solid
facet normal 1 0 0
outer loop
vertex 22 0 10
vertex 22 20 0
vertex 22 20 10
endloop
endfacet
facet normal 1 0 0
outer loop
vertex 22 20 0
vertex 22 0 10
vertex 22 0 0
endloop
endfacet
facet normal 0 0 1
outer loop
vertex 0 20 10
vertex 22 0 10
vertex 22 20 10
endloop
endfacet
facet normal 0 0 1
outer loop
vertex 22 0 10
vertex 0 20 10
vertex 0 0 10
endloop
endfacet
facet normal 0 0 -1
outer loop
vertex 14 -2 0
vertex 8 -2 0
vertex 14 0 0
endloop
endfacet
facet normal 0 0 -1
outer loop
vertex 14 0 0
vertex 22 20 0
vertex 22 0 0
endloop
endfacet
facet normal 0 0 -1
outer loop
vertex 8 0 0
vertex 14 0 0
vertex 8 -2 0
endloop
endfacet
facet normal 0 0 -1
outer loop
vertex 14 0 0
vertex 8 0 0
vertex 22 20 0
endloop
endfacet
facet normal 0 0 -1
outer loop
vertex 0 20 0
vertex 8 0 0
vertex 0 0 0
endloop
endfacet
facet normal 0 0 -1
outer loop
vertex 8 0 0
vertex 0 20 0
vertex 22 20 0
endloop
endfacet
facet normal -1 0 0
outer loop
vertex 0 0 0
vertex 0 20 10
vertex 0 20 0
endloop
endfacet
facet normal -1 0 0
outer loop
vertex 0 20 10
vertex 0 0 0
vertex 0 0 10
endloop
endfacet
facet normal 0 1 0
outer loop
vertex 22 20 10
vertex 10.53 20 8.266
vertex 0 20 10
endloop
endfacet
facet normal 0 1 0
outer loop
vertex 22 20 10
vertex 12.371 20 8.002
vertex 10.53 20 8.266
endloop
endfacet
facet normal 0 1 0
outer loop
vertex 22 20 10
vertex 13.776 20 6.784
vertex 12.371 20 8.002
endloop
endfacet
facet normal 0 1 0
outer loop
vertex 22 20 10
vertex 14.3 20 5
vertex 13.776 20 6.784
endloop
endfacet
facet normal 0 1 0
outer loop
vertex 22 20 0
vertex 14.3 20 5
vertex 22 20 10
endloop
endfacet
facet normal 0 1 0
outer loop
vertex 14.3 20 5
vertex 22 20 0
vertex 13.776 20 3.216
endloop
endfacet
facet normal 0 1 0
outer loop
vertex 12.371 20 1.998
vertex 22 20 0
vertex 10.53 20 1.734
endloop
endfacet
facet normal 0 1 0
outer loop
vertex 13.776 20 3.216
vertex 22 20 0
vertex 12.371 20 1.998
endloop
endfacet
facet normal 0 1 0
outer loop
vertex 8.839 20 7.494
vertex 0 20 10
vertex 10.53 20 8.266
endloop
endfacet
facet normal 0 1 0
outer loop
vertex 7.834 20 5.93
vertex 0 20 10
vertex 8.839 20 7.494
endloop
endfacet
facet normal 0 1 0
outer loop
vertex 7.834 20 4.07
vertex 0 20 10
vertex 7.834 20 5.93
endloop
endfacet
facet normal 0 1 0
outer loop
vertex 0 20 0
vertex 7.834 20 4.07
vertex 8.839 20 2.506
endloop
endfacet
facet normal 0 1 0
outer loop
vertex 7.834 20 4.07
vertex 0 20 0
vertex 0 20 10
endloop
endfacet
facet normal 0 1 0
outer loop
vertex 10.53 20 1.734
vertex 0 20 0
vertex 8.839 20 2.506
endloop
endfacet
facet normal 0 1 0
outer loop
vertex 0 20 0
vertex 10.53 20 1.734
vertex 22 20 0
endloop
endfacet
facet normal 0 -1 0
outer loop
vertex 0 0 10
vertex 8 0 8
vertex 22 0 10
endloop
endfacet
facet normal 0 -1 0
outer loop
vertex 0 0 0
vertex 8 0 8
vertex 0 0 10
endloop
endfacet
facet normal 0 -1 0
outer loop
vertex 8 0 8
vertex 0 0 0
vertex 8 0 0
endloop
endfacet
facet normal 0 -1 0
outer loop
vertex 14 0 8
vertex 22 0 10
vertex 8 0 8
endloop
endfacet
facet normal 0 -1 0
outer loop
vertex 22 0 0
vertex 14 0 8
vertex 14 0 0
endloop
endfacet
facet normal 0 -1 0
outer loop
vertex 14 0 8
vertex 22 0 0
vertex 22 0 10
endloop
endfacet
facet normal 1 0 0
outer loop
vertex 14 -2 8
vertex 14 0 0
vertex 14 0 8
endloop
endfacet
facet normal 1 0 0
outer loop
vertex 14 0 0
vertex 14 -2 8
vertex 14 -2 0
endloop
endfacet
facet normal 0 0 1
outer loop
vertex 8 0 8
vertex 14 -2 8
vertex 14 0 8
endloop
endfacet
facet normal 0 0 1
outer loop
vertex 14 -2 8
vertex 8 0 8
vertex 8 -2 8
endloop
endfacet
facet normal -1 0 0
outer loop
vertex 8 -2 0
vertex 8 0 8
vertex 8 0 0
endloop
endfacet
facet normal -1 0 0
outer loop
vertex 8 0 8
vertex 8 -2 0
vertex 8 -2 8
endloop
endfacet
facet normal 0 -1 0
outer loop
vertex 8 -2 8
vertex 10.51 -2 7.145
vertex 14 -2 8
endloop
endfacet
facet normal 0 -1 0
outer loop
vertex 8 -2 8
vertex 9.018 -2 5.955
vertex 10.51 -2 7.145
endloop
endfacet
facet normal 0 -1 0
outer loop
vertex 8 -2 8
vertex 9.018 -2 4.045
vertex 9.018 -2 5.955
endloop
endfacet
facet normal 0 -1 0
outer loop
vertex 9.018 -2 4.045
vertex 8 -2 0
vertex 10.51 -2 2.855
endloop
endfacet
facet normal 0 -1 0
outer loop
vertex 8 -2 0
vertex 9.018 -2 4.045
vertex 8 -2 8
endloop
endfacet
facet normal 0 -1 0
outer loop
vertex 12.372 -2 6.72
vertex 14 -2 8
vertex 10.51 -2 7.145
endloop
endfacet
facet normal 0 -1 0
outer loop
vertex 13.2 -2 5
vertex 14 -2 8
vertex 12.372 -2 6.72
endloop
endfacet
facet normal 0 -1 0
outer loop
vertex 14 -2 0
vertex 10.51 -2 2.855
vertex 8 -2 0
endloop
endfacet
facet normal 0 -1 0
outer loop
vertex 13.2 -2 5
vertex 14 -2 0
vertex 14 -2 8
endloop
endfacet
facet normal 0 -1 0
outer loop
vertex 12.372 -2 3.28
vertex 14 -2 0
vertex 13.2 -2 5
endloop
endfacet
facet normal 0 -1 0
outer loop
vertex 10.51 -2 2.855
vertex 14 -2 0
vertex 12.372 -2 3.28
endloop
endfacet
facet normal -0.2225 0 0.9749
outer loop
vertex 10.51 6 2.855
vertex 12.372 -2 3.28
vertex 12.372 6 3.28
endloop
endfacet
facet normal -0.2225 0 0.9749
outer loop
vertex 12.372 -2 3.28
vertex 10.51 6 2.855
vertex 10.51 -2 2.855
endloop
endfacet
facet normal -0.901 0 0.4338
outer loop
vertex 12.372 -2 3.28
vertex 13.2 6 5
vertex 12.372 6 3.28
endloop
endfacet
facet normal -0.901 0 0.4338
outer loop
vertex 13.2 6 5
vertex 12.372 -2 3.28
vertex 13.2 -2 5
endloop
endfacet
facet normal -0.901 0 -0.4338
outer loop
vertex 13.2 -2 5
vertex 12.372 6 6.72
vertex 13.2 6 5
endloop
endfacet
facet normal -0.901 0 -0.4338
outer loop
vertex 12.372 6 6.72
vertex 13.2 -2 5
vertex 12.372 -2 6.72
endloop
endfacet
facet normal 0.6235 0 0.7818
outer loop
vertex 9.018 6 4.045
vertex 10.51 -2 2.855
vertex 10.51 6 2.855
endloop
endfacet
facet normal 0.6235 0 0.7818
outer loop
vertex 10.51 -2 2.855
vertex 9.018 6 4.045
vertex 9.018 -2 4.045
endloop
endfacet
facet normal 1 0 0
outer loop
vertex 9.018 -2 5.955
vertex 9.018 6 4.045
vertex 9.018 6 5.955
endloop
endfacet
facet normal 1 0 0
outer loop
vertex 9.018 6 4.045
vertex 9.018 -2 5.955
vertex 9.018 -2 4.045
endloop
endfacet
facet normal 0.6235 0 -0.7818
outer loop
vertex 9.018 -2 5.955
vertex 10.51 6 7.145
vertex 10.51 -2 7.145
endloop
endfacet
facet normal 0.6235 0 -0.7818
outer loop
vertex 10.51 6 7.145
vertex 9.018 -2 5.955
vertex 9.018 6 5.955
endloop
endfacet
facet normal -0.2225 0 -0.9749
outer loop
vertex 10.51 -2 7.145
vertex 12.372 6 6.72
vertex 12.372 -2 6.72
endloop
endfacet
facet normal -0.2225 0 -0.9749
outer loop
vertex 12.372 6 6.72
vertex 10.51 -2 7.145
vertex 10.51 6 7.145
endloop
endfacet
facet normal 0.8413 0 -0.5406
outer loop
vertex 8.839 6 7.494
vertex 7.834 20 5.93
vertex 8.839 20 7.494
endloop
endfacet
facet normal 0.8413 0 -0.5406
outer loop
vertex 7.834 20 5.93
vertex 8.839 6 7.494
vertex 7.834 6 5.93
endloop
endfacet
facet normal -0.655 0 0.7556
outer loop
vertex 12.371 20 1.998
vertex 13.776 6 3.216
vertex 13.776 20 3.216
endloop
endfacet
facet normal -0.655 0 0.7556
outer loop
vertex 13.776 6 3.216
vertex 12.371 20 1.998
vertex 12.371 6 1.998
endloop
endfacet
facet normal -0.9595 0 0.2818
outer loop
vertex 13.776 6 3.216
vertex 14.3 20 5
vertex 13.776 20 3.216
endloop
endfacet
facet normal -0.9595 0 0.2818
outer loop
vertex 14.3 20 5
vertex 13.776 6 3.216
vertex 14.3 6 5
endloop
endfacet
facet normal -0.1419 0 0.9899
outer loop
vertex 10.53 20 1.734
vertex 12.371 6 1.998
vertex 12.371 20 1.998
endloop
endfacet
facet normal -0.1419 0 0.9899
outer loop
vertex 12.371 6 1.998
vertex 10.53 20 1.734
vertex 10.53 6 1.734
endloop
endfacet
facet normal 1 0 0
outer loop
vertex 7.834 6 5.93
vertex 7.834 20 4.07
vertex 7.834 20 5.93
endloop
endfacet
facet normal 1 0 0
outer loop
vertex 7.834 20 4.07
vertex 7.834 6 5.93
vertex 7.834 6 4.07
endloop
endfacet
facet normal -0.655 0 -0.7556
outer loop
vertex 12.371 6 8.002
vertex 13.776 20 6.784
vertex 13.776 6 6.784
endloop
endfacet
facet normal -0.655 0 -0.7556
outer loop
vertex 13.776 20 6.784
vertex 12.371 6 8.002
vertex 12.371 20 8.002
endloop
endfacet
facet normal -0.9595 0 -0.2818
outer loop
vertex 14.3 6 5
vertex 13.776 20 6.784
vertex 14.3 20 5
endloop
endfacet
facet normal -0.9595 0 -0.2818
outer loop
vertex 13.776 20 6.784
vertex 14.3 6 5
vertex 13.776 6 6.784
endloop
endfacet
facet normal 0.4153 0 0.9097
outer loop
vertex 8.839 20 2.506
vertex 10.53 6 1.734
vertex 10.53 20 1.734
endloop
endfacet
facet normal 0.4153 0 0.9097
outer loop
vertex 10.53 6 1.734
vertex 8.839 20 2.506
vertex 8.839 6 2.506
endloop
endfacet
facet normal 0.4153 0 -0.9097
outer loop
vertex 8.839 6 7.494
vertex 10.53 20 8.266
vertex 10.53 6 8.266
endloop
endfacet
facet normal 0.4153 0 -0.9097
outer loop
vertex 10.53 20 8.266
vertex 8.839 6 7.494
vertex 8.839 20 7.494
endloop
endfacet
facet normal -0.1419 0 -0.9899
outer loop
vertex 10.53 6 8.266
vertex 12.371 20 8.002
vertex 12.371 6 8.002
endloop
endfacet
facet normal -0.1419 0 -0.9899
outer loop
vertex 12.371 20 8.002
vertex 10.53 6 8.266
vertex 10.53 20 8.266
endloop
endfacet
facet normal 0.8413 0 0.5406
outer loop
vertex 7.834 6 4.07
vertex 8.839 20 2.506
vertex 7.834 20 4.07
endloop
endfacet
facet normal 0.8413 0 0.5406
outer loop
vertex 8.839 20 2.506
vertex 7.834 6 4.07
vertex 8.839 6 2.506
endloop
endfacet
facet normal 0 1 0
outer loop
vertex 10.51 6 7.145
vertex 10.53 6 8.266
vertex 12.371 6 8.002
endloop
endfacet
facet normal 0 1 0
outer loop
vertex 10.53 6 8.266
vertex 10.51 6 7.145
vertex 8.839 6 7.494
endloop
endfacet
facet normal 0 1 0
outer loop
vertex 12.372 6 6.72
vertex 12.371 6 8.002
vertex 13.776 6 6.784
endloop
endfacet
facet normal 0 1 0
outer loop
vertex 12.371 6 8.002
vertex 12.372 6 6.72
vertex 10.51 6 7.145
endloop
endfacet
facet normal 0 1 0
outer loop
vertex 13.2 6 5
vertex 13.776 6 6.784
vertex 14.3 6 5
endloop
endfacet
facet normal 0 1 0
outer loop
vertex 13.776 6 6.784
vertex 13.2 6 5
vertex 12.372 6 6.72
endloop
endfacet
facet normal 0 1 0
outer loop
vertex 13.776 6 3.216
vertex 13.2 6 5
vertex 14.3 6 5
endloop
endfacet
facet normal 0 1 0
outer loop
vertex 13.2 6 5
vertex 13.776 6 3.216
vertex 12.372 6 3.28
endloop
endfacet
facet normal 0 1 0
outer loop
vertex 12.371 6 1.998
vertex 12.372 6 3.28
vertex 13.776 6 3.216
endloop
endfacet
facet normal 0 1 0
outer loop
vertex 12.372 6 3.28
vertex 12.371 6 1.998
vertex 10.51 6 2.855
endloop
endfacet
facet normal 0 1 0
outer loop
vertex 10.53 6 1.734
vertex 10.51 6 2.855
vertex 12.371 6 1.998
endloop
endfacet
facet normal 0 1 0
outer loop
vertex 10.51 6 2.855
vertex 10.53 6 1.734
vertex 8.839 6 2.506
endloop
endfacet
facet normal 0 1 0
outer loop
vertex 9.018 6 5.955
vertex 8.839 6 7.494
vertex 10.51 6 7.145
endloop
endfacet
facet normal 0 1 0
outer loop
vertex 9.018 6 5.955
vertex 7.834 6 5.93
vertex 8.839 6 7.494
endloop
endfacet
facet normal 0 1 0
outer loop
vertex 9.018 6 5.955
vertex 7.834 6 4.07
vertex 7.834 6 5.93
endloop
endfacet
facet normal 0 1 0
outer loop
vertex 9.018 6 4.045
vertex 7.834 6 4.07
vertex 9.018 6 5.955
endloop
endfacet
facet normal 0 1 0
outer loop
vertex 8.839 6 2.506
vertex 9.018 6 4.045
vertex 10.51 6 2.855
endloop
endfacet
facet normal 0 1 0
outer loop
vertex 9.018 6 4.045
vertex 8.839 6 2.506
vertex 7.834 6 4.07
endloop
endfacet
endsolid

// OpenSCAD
//Linear Rail end stops
module body(){
    cube([22,20,10]);
    translate([8,-2,0]){cube([6,2,8]);}
}

difference(){
    body();
    translate([11,-3,5])rotate(a=[270,0,0]){cylinder(24,2.2,2.2);}
    translate([11,6,5])rotate(a=[270,0,0]){cylinder(24,3.3,3.3);}

}
